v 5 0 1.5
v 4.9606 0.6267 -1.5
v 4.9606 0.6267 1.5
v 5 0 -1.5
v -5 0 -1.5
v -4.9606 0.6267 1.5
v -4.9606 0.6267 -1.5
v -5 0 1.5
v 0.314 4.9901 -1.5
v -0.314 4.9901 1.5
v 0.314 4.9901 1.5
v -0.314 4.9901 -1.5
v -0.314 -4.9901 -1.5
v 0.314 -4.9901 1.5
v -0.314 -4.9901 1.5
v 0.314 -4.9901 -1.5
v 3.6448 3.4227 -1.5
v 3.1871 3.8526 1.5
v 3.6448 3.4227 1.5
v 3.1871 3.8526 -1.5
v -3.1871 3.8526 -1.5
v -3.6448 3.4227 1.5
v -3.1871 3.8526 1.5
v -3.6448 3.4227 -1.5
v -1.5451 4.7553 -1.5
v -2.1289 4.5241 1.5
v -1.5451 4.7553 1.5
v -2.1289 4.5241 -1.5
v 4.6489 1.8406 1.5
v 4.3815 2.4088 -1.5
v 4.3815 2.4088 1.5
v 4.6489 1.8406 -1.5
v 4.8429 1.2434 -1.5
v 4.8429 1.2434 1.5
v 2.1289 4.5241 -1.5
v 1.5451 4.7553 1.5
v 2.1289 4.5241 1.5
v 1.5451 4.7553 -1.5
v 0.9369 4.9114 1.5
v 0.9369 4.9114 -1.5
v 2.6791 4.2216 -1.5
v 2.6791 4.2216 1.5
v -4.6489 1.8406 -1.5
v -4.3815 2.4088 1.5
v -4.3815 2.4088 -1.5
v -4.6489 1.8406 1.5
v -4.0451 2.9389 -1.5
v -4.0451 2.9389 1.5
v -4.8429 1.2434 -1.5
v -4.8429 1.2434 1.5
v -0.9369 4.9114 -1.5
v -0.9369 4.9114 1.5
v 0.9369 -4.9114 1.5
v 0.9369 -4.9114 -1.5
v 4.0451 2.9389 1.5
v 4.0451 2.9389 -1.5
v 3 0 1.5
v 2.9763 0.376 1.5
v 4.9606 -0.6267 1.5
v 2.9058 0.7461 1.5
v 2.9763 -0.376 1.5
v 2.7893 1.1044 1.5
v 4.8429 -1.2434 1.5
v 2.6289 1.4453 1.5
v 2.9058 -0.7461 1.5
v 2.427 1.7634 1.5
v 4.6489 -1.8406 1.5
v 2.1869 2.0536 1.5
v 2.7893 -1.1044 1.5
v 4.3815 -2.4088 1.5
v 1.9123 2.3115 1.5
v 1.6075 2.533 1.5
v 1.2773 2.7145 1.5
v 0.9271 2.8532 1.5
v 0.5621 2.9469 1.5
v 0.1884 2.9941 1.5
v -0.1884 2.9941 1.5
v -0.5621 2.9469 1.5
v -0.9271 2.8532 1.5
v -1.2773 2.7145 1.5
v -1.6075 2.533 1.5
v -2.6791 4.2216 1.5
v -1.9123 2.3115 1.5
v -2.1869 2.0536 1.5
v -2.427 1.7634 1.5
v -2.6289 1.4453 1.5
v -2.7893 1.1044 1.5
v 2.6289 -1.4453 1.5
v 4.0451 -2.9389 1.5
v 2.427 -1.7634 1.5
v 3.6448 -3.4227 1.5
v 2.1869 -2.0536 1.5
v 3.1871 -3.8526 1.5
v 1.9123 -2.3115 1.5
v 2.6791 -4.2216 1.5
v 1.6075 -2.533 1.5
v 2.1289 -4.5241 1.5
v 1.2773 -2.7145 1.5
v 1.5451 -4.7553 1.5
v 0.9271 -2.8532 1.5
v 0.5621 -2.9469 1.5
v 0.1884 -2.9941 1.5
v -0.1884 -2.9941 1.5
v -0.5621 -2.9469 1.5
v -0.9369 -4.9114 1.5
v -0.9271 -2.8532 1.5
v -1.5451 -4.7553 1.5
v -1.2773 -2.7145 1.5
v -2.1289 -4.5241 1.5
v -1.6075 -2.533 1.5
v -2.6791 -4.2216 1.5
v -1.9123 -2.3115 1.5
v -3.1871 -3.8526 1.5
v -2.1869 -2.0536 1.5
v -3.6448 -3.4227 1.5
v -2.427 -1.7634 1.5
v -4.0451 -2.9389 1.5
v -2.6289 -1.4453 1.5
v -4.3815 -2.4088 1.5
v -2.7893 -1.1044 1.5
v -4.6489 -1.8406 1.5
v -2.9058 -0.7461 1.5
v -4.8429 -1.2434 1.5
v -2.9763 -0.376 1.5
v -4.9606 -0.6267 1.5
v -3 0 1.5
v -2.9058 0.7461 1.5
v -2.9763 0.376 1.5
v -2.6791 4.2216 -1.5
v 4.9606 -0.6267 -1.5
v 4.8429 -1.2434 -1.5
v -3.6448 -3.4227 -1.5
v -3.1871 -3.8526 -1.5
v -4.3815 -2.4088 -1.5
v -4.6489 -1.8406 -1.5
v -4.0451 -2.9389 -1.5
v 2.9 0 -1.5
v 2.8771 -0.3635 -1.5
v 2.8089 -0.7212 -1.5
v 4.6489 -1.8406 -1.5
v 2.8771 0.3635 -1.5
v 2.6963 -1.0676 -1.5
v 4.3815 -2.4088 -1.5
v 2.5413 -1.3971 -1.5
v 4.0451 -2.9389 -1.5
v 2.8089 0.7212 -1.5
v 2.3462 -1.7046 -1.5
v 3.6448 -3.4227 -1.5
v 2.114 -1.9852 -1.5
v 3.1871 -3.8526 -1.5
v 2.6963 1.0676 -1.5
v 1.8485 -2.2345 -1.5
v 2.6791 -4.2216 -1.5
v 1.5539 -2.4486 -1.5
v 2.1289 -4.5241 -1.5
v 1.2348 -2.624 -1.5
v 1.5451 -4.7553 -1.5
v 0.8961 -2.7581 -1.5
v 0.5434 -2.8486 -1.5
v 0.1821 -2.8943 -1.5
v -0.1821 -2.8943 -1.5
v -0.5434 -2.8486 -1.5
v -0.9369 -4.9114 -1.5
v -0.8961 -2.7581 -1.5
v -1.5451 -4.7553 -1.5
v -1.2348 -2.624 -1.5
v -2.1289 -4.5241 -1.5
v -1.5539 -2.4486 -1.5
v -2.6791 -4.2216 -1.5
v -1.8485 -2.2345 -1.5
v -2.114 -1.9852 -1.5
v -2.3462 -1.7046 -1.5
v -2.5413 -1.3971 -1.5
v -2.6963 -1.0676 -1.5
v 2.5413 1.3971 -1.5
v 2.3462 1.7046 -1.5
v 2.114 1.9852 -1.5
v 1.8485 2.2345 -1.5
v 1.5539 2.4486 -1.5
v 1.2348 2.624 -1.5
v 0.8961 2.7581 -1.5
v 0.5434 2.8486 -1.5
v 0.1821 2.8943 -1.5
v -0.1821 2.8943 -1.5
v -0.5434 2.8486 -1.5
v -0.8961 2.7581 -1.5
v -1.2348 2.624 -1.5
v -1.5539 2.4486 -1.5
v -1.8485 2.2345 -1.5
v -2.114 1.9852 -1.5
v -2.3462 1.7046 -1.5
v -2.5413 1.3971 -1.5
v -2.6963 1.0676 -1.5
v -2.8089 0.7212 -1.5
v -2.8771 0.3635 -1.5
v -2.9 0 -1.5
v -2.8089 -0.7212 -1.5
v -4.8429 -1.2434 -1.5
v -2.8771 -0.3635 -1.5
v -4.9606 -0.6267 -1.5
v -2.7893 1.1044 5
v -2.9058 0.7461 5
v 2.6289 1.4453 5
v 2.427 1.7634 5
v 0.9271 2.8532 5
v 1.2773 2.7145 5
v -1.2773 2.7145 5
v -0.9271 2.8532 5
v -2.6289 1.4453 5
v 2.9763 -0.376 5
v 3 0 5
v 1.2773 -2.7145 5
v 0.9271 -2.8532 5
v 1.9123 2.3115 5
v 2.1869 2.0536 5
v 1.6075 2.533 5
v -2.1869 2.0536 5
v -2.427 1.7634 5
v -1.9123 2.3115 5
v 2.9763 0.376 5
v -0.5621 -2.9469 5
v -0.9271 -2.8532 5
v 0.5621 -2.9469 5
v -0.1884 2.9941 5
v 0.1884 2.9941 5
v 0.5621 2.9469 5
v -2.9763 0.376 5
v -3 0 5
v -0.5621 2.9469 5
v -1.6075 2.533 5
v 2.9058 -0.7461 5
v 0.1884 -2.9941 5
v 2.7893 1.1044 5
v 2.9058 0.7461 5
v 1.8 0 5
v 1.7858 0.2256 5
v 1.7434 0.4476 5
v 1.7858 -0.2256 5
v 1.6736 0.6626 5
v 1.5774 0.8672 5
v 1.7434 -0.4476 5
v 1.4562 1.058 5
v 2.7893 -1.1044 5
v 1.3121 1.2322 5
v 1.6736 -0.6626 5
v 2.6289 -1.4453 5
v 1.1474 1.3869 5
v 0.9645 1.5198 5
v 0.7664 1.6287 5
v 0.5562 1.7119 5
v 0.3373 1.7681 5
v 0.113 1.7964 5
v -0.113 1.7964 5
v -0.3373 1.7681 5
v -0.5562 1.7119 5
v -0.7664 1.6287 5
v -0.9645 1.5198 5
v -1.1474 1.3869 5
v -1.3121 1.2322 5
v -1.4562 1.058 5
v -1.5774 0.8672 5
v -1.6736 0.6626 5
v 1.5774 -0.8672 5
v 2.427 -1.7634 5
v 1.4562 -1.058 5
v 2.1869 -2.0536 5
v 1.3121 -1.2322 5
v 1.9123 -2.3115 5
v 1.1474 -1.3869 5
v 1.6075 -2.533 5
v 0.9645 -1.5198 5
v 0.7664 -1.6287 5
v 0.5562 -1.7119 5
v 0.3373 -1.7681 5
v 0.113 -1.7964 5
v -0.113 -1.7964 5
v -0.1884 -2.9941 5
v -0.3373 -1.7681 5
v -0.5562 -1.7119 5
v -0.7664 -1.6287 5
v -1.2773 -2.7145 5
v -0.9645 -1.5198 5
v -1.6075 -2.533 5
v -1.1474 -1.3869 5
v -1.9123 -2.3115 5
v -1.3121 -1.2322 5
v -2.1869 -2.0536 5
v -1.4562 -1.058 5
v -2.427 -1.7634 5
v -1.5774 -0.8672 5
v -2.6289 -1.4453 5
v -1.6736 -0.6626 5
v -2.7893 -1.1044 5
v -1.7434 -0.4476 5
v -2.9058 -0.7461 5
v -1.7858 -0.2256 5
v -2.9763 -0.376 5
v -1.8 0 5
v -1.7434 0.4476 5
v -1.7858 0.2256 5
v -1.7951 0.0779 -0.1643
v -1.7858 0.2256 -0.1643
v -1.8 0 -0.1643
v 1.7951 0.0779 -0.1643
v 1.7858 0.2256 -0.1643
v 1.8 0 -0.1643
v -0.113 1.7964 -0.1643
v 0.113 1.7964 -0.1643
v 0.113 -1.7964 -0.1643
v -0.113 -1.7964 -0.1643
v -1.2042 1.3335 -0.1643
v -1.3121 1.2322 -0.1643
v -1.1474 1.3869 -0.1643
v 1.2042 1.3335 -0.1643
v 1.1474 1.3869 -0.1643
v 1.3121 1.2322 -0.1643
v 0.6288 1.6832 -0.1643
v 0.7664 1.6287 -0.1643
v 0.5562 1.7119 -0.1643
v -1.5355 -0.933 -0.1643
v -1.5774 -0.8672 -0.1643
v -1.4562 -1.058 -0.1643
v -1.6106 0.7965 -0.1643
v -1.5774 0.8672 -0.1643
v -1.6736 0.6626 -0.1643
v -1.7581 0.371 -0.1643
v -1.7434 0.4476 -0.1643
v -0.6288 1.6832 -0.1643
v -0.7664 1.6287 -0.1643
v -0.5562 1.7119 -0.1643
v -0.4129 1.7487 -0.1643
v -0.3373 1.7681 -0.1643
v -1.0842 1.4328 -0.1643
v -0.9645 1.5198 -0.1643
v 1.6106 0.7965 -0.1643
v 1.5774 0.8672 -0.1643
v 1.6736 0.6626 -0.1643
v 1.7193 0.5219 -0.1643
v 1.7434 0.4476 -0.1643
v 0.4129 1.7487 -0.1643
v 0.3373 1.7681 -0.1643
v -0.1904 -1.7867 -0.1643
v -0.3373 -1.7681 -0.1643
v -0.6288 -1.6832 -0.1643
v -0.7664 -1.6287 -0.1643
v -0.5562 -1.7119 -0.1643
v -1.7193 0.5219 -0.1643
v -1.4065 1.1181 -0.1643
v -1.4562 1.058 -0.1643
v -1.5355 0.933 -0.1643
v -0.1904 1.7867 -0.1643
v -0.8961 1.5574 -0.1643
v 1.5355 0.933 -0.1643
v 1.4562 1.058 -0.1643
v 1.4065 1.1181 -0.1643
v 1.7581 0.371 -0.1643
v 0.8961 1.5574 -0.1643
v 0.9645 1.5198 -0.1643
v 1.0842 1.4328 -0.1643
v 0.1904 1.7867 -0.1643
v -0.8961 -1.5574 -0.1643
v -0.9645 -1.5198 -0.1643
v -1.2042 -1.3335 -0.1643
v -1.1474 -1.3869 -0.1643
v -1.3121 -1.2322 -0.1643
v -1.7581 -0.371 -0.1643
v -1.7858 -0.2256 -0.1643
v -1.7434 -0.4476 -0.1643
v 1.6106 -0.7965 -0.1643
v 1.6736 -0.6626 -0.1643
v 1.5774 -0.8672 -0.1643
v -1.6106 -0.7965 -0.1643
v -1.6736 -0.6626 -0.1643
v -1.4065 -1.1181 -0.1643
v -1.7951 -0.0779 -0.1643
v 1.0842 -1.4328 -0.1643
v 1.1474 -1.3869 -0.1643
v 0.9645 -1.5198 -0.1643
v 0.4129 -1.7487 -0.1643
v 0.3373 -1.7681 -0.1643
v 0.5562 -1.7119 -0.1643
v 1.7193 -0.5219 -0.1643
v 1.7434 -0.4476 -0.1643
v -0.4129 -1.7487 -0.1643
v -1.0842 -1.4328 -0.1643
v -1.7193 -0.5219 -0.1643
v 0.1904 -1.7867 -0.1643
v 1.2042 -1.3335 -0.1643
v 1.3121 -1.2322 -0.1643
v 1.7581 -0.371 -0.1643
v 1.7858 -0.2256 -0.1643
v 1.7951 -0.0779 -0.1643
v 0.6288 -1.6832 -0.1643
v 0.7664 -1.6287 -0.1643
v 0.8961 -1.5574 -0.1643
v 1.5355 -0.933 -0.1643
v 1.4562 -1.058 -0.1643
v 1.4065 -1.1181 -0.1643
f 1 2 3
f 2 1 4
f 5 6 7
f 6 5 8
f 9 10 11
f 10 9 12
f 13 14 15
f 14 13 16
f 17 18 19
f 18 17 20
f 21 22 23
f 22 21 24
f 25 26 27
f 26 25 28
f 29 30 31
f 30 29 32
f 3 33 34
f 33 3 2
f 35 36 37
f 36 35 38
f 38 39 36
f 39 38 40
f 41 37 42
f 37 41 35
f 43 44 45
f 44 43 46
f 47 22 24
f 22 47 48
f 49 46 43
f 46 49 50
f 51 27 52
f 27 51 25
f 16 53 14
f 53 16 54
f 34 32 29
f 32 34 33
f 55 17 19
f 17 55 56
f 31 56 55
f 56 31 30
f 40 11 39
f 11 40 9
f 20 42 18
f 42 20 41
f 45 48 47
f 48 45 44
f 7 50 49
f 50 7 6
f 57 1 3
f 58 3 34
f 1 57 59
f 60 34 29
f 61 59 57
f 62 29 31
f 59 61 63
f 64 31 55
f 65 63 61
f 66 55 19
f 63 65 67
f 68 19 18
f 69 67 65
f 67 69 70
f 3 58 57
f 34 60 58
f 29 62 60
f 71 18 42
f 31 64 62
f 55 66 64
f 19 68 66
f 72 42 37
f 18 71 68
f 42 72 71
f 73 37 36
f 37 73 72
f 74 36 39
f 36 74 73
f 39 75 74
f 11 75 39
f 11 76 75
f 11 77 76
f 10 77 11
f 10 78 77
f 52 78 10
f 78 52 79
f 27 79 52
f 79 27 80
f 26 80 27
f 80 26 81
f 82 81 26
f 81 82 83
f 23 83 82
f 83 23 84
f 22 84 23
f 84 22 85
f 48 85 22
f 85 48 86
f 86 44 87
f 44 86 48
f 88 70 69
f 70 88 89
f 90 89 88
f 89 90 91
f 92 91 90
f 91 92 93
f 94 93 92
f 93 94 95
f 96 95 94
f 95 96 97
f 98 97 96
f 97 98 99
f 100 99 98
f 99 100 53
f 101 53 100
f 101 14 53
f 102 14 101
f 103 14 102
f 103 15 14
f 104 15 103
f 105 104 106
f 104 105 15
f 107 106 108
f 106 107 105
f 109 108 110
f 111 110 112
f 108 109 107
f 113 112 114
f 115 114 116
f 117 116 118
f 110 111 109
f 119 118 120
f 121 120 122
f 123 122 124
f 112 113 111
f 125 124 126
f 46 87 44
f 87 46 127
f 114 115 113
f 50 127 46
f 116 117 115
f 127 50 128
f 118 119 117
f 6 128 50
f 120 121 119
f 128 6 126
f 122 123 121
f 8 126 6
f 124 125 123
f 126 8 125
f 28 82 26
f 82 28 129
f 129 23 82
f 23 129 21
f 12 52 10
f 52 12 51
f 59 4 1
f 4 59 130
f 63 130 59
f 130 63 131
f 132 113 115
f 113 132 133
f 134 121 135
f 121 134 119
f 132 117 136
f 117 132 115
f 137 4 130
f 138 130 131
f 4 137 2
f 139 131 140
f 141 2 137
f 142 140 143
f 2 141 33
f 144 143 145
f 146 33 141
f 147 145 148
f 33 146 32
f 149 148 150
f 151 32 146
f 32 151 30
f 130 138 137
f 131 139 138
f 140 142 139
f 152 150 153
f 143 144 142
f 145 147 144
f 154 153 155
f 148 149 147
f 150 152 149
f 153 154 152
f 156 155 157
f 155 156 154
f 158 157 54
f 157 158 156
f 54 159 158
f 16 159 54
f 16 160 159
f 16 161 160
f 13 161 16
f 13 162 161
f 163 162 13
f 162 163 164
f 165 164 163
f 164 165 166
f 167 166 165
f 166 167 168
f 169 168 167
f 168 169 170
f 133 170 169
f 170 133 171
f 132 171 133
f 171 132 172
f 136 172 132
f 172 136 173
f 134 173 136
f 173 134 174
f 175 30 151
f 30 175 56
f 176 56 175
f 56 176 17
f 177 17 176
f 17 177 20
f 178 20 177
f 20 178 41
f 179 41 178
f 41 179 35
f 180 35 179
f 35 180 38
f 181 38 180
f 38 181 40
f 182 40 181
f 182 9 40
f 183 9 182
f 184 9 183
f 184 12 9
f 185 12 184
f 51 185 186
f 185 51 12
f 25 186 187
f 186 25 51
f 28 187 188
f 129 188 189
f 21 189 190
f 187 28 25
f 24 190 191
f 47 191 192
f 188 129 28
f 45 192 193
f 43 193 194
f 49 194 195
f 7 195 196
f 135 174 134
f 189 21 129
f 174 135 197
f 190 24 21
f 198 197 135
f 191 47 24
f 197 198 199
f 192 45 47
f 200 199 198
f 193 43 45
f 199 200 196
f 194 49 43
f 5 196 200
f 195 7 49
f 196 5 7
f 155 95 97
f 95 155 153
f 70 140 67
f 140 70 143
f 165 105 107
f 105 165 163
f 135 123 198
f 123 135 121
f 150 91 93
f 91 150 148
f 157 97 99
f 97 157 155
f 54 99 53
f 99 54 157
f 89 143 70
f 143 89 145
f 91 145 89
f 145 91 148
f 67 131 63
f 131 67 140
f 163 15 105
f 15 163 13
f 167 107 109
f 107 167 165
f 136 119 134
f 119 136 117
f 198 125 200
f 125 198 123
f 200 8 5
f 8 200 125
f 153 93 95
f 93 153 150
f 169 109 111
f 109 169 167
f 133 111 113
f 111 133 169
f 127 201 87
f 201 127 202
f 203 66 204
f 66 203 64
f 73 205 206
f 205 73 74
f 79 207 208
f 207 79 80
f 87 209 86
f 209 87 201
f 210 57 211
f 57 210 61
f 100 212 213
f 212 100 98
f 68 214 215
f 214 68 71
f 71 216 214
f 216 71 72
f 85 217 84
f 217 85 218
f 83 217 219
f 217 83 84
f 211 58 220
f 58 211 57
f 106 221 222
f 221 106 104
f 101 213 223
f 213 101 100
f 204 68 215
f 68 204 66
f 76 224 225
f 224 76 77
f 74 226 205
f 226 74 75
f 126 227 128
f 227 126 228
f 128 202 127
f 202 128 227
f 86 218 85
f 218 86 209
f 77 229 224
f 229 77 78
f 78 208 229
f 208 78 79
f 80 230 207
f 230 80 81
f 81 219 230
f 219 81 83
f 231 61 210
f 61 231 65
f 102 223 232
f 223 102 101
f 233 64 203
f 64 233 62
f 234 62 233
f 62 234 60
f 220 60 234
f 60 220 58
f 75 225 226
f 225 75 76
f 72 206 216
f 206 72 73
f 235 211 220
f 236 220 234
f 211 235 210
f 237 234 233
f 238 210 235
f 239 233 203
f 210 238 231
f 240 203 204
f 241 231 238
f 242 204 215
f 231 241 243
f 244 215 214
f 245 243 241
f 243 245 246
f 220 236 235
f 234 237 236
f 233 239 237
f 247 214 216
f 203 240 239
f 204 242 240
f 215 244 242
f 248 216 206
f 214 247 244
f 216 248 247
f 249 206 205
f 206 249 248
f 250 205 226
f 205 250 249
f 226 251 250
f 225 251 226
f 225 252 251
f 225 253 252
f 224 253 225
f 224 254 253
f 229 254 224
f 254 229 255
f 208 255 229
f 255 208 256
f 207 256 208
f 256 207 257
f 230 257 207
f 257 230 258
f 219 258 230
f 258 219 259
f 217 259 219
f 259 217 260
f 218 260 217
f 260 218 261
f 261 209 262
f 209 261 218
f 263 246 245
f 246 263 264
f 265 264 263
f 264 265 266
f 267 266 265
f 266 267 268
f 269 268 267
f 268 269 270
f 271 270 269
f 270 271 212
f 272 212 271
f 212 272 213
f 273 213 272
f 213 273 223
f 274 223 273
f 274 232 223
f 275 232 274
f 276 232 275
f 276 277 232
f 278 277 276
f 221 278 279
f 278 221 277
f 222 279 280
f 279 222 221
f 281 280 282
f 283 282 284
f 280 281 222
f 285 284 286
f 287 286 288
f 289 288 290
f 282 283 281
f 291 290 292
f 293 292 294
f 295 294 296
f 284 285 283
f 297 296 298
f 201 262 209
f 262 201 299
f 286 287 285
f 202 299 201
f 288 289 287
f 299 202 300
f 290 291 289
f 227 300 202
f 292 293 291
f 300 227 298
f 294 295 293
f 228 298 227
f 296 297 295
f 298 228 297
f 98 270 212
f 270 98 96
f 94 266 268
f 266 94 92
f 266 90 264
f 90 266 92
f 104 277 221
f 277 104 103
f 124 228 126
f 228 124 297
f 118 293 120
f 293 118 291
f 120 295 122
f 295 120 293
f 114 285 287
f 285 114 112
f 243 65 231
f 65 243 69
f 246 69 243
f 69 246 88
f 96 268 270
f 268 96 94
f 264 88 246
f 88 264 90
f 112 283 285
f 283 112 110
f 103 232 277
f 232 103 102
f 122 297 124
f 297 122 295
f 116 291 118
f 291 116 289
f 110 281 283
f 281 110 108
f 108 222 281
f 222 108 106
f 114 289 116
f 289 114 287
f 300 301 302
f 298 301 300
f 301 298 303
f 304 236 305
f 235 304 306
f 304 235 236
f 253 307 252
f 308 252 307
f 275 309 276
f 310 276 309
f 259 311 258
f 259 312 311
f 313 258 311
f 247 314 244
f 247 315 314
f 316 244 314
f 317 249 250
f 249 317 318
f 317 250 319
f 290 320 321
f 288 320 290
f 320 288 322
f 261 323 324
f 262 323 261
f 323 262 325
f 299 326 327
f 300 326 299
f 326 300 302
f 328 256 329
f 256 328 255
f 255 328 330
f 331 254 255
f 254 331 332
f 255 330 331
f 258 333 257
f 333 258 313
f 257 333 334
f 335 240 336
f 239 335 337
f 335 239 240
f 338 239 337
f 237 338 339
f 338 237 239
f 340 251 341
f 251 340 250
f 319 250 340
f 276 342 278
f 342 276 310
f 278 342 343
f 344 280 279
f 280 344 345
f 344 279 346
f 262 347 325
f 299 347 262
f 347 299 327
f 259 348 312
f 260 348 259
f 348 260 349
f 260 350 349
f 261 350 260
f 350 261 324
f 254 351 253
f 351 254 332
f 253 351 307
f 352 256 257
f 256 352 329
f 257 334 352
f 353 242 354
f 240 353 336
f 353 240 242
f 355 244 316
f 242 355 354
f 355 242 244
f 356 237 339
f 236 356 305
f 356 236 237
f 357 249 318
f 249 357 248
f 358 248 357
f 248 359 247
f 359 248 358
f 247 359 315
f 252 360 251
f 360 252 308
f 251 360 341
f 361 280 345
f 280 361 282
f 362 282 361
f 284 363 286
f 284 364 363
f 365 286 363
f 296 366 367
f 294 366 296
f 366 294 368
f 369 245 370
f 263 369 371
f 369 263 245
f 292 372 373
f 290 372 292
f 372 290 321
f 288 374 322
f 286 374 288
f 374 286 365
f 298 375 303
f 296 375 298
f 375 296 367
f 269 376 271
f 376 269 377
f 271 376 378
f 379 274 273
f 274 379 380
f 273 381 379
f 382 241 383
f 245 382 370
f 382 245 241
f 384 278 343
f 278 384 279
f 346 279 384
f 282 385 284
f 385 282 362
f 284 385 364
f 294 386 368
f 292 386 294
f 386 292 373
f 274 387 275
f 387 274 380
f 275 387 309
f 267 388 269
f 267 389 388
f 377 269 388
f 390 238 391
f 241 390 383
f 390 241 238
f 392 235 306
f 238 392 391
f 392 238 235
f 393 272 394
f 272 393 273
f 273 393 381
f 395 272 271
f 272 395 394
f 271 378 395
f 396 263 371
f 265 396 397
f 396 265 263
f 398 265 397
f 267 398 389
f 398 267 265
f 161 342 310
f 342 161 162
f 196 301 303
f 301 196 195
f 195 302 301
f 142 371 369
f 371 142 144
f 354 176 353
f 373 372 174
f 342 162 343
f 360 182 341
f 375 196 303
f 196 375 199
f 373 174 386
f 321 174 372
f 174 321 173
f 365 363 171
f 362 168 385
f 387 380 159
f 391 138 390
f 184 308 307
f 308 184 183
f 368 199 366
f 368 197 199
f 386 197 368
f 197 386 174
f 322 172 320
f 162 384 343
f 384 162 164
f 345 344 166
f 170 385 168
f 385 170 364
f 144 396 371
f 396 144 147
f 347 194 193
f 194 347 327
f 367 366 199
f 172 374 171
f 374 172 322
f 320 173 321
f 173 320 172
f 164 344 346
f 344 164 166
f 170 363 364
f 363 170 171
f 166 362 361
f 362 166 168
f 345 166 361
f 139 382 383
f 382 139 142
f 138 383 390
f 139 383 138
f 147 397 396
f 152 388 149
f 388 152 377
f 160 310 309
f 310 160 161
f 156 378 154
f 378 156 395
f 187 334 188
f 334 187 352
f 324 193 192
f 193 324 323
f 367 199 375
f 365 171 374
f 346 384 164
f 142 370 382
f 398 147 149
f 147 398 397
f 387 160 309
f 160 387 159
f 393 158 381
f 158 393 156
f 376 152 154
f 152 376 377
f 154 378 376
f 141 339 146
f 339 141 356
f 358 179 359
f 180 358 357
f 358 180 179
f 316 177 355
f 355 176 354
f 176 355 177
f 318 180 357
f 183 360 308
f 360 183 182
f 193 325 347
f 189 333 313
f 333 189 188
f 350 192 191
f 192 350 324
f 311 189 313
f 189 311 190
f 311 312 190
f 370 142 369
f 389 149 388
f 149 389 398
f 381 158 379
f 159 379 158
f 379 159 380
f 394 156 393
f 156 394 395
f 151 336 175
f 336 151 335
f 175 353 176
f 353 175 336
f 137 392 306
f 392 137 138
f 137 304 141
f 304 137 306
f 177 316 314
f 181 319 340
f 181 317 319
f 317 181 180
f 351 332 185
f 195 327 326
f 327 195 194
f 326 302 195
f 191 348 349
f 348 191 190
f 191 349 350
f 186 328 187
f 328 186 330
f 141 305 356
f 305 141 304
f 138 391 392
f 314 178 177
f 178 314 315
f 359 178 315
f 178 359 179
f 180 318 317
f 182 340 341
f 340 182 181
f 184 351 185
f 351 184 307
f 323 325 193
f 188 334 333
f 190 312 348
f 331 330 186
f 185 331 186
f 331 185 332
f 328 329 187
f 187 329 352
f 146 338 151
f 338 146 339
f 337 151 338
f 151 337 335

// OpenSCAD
$fn = 50;


difference() {
	union() {
		translate(v = [0, 0, -1.5000000000]) {
			cylinder(h = 3, r = 5.0000000000);
		}
		translate(v = [0, 0, -1.5000000000]) {
			cylinder(h = 6.5000000000, r = 3.0000000000);
		}
	}
	union() {
		translate(v = [0, 0, -1.5000000000]) {
			rotate(a = [0, 180, 0]) {
				difference() {
					union() {
						translate(v = [0, 0, -6.5000000000]) {
							cylinder(h = 6.5000000000, r = 1.5000000000);
						}
						translate(v = [0, 0, -6.5000000000]) {
							cylinder(h = 6.5000000000, r = 1.8000000000);
						}
						translate(v = [0, 0, -1.7000000000]) {
							cylinder(h = 1.7000000000, r1 = 1.5000000000, r2 = 2.9000000000);
						}
						translate(v = [0, 0, -6.5000000000]) {
							cylinder(h = 6.5000000000, r = 1.5000000000);
						}
					}
					union();
				}
			}
		}
		translate(v = [0, 0, -50.0000000000]) {
			cylinder(h = 100, r = 1.5000000000);
		}
	}
}
